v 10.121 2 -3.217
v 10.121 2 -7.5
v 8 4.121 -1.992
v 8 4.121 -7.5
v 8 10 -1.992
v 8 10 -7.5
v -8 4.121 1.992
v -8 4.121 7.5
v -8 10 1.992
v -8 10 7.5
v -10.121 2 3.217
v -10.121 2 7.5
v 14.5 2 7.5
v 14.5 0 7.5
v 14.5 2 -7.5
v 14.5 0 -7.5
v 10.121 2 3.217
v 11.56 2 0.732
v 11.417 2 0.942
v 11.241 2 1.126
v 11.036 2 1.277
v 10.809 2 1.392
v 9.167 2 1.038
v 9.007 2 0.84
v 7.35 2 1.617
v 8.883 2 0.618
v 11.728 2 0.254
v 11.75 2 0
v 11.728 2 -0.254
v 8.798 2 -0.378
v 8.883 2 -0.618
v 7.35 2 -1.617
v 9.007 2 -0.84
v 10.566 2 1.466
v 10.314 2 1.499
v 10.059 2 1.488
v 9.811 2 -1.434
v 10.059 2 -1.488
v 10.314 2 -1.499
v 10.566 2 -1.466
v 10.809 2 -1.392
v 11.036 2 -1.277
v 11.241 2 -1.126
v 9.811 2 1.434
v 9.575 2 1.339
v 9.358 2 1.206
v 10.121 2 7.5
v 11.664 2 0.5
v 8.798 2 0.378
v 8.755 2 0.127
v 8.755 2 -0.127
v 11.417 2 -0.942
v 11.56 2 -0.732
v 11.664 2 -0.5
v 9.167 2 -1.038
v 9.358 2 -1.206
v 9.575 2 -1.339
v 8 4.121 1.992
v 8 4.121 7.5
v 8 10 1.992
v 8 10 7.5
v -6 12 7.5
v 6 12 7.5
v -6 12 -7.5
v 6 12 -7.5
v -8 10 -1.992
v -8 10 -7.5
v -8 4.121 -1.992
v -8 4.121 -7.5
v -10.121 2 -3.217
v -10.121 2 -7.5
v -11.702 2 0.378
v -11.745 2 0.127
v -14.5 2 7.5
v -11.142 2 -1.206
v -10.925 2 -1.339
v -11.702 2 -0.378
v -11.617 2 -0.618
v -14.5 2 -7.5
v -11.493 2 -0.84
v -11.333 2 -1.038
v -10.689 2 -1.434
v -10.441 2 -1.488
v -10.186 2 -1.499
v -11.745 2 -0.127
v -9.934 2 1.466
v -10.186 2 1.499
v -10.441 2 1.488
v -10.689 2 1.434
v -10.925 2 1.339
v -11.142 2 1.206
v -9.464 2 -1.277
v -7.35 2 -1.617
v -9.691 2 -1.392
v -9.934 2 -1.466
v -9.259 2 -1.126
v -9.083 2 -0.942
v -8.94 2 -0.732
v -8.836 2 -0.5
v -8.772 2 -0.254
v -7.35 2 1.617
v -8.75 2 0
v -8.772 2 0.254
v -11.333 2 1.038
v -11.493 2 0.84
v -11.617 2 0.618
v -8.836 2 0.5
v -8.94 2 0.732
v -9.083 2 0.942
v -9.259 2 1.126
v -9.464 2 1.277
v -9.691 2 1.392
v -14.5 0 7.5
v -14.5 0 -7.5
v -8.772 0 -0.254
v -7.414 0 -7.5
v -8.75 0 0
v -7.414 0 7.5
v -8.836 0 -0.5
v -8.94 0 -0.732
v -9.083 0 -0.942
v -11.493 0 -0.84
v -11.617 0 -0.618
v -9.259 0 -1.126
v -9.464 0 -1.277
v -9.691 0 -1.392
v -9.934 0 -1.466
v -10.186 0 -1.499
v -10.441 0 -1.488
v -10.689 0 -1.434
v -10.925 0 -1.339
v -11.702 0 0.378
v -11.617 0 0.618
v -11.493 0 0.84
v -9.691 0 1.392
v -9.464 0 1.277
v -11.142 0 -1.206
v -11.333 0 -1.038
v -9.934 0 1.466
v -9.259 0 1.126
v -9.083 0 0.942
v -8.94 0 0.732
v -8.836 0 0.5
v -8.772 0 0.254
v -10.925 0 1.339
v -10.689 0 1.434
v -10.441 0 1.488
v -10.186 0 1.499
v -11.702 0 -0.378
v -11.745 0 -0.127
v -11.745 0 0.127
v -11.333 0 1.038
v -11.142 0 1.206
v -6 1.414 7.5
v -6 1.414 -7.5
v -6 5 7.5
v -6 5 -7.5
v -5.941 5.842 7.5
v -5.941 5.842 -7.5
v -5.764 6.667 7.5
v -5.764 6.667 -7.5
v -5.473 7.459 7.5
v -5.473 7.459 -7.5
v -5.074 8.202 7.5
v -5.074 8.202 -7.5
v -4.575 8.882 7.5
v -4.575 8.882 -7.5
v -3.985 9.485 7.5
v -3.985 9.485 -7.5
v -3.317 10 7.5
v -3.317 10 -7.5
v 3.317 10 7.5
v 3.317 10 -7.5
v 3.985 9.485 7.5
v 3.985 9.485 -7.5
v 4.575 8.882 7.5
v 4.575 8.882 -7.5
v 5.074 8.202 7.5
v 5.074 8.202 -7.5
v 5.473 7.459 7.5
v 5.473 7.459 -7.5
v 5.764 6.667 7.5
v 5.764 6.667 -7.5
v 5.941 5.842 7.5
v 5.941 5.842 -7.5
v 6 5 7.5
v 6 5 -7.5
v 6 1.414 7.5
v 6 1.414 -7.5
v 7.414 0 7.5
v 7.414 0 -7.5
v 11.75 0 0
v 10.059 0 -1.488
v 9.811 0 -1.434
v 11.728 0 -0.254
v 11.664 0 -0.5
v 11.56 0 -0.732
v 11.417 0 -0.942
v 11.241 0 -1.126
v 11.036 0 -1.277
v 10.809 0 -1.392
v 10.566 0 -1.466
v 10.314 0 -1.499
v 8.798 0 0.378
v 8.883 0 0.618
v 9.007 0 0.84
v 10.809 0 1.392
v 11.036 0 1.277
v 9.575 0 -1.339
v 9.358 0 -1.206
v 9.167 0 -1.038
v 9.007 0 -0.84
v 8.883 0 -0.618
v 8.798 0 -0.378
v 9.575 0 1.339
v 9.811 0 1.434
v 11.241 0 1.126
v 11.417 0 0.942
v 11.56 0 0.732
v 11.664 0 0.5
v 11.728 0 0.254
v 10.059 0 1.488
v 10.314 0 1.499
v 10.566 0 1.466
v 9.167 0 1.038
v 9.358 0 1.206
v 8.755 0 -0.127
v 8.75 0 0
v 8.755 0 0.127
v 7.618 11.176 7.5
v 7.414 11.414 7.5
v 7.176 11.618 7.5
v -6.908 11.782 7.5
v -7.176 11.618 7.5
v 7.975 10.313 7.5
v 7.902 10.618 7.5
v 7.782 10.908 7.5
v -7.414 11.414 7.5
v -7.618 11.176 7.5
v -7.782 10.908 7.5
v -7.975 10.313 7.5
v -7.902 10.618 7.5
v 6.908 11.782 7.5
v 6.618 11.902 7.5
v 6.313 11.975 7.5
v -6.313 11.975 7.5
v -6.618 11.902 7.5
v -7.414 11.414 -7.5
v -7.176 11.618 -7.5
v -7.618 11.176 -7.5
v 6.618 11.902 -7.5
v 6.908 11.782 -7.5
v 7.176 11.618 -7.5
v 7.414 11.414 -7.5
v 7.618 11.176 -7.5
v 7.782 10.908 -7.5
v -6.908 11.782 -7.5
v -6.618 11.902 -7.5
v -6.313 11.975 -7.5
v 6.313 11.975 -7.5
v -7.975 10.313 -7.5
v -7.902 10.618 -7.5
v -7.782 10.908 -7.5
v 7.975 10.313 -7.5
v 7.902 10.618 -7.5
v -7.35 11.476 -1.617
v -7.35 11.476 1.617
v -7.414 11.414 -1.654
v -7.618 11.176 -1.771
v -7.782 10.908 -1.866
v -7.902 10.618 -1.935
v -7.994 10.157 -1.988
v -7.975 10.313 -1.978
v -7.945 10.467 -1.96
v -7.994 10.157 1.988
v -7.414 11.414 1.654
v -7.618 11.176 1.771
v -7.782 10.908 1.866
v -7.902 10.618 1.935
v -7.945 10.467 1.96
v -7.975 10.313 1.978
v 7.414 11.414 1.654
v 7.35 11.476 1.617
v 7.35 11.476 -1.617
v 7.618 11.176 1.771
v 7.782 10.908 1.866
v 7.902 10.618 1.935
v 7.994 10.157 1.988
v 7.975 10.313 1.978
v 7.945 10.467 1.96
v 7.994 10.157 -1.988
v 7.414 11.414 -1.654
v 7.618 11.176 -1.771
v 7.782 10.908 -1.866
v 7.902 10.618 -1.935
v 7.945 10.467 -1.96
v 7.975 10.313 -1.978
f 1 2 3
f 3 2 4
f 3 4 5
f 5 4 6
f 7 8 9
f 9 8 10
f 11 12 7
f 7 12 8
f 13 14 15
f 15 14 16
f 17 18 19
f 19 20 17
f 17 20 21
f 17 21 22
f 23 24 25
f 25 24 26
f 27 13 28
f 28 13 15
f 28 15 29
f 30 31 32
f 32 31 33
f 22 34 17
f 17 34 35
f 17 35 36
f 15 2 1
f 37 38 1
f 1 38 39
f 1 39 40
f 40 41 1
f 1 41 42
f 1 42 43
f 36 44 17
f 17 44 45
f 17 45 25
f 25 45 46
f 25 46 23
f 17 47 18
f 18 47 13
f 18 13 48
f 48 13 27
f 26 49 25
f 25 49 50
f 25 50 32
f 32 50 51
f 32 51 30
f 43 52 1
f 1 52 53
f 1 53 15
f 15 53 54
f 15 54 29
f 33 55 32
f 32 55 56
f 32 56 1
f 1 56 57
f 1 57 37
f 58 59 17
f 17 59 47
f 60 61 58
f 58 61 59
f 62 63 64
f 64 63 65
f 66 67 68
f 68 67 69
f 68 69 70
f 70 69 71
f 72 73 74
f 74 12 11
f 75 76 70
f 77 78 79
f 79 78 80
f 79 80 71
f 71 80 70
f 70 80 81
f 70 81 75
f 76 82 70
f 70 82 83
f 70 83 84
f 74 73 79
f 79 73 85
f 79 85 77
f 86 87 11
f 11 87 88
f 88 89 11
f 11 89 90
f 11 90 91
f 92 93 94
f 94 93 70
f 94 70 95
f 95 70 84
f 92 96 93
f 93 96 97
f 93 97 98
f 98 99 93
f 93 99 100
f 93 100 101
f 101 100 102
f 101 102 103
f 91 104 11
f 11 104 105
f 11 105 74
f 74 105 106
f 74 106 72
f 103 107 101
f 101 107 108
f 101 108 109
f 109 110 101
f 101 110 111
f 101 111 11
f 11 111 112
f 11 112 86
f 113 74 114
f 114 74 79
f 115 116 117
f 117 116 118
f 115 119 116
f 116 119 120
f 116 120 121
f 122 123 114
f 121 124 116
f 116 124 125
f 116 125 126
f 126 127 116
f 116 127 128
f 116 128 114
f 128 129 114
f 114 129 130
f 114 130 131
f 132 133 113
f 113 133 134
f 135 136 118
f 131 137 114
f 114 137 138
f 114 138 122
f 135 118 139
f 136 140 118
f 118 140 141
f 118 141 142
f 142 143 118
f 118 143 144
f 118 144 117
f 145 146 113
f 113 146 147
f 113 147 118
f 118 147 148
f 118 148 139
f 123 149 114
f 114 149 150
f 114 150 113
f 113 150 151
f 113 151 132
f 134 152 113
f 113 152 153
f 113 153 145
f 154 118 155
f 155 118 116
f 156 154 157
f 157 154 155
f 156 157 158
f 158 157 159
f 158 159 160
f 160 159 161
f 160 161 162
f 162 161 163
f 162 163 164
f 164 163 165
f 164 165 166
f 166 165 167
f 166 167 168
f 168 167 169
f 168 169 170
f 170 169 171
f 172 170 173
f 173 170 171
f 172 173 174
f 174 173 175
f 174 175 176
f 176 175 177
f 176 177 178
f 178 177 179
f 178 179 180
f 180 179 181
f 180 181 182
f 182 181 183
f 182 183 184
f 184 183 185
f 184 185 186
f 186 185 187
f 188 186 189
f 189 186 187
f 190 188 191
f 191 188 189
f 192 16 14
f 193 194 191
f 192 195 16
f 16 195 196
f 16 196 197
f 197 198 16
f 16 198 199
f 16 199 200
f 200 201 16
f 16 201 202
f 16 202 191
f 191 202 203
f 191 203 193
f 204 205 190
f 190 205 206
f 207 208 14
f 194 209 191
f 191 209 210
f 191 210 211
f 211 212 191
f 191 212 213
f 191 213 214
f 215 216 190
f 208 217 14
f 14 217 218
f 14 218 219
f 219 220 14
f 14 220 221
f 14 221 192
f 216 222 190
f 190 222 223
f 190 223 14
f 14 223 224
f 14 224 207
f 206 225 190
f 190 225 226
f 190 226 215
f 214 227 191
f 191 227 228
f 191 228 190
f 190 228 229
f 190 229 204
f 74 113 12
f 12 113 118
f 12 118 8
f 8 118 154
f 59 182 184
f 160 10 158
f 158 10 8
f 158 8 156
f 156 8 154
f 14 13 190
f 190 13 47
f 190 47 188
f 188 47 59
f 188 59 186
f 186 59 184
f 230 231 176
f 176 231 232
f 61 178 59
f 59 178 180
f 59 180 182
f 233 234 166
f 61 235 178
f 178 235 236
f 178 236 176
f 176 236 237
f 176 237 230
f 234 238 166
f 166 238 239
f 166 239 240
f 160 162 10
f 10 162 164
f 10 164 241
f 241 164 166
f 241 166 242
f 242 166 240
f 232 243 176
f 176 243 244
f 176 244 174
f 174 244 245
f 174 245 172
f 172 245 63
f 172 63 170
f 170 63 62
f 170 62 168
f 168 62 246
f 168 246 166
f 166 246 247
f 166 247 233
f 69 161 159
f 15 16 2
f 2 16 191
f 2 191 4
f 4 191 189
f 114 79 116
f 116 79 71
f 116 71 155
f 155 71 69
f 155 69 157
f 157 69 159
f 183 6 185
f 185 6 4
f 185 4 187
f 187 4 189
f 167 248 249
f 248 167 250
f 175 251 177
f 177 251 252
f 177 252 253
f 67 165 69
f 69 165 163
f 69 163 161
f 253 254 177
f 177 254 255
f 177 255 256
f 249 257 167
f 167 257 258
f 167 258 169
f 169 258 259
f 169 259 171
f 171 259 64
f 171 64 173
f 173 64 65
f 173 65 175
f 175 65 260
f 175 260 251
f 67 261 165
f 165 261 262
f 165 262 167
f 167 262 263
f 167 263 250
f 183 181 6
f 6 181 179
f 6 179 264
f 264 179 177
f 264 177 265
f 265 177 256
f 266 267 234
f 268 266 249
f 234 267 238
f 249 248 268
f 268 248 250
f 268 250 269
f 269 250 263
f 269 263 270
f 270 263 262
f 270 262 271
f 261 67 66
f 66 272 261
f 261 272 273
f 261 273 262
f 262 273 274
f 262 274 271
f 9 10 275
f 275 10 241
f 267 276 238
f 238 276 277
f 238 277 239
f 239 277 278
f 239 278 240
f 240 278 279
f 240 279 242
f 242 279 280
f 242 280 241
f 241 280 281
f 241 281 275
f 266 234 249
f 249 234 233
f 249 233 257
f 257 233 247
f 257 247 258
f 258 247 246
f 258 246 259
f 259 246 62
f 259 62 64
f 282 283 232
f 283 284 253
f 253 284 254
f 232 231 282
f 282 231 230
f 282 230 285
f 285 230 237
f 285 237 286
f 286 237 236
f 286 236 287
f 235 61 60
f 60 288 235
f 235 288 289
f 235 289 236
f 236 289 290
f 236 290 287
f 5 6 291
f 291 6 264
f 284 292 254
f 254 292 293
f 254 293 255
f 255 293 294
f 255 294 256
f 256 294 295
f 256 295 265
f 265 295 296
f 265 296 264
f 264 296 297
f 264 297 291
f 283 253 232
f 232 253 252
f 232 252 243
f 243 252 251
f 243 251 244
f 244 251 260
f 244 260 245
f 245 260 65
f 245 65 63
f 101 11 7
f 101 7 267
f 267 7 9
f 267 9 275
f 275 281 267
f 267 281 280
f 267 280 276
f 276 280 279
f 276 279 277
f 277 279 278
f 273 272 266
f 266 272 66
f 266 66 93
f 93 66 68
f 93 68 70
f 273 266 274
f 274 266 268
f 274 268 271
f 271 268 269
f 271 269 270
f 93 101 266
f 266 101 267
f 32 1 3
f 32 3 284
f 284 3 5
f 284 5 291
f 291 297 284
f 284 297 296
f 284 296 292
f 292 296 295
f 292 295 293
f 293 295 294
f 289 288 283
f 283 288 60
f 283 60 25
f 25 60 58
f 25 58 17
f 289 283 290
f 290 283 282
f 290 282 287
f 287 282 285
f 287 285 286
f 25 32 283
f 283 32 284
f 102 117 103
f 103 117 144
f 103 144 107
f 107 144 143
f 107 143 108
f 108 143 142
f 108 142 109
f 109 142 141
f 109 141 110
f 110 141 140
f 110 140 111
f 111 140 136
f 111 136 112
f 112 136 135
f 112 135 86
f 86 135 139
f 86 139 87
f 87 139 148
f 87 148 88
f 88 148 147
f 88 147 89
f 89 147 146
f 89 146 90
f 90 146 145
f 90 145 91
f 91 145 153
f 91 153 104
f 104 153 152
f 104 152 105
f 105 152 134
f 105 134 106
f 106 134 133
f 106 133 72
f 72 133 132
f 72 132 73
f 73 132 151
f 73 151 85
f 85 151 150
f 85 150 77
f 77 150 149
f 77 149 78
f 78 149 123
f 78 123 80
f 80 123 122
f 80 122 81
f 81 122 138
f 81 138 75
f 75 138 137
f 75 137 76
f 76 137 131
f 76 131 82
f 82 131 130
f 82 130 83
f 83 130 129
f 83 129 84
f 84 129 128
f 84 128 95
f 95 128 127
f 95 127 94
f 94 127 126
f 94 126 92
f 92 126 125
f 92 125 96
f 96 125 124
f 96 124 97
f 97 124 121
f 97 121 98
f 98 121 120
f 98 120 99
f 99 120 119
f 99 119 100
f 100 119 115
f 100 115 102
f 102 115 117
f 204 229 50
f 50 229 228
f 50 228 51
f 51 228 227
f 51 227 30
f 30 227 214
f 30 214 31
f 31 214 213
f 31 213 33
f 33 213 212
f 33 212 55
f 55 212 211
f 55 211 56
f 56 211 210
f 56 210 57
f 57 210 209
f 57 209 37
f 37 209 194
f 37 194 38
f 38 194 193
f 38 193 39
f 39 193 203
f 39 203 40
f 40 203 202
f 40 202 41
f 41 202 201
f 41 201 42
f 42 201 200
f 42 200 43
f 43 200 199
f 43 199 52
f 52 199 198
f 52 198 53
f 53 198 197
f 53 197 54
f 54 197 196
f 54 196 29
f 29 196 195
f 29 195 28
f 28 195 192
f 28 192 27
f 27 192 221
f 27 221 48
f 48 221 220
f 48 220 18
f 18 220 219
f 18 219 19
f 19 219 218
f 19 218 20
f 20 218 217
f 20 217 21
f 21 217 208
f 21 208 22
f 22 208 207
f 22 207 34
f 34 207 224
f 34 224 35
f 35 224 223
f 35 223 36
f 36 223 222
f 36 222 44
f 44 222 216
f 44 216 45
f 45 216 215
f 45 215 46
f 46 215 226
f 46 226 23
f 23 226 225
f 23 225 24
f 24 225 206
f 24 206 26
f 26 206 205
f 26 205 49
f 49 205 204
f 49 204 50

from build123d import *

# Parameters (mm, degrees)
SALIENTE_EXTRUIR1_DEPTH = 7.5
REDONDEO1_R             = 2
CORTAR_EXTRUIR2_DEPTH   = 10
CROQUIS4_R              = 1.5
CORTAR_EXTRUIR3_DEPTH   = 11


with BuildPart() as part:
    # Croquis1 → Saliente-Extruir1 (new body, symmetric)
    with BuildSketch(Plane.XY):
        with BuildLine():
            Line((14.5, 0), (7.414213562, 0))
            Line((7.414213562, 0), (6, 1.414213562))
            Line((6, 1.414213562), (6, 5))
            ThreePointArc((6, 5), (5.286764074, 7.837274331), (3.31662479, 10))
            Line((3.31662479, 10), (-3.31662479, 10))
            ThreePointArc((-3.31662479, 10), (-5.286764074, 7.837274331), (-6, 5))
            Line((-6, 5), (-6, 1.414213562))
            Line((-6, 1.414213562), (-7.414213562, 0))
            Line((-7.414213562, 0), (-14.5, 0))
            Line((-14.5, 0), (-14.5, 2))
            Line((-14.5, 2), (-10.121320344, 2))
            Line((-10.121320344, 2), (-8, 4.121320344))
            Line((-8, 4.121320344), (-8, 12))
            Line((-8, 12), (8, 12))
            Line((8, 12), (8, 4.121320344))
            Line((8, 4.121320344), (10.121320344, 2))
            Line((10.121320344, 2), (14.5, 2))
            Line((14.5, 2), (14.5, 0))
        make_face()
    extrude(amount=SALIENTE_EXTRUIR1_DEPTH, both=True)

    # Redondeo1
    redondeo1_edges = [part.edges().sort_by_distance(p)[0] for p in [
        (-8, 12, 0),
        (8, 12, 0),
    ]]
    fillet(redondeo1_edges, radius=REDONDEO1_R)

    # Croquis3 → Cortar-Extruir2 (cut)
    with BuildSketch(Plane(origin=(0, 12, 0), x_dir=(1, 0, 0), z_dir=(0, 1, 0))):
        Polygon((-10.15, -3.233161507), (-7.35, -1.616580754), (-7.35, 1.616580754), (-10.15, 3.233161507), (-12.95, 1.616580754), (-12.95, -1.616580754), align=None)
        Polygon((12.95, -1.616580754), (10.15, -3.233161507), (7.35, -1.616580754), (7.35, 1.616580754), (10.15, 3.233161507), (12.95, 1.616580754), align=None)
    extrude(amount=-CORTAR_EXTRUIR2_DEPTH, mode=Mode.SUBTRACT)

    # Croquis4 → Cortar-Extruir3 (cut)
    with BuildSketch(Plane.XZ):
        with Locations((-10.25, 0)):
            Circle(CROQUIS4_R)
        with Locations((10.25, 0)):
            Circle(CROQUIS4_R)
    extrude(amount=-CORTAR_EXTRUIR3_DEPTH, mode=Mode.SUBTRACT)


solid = part.part
